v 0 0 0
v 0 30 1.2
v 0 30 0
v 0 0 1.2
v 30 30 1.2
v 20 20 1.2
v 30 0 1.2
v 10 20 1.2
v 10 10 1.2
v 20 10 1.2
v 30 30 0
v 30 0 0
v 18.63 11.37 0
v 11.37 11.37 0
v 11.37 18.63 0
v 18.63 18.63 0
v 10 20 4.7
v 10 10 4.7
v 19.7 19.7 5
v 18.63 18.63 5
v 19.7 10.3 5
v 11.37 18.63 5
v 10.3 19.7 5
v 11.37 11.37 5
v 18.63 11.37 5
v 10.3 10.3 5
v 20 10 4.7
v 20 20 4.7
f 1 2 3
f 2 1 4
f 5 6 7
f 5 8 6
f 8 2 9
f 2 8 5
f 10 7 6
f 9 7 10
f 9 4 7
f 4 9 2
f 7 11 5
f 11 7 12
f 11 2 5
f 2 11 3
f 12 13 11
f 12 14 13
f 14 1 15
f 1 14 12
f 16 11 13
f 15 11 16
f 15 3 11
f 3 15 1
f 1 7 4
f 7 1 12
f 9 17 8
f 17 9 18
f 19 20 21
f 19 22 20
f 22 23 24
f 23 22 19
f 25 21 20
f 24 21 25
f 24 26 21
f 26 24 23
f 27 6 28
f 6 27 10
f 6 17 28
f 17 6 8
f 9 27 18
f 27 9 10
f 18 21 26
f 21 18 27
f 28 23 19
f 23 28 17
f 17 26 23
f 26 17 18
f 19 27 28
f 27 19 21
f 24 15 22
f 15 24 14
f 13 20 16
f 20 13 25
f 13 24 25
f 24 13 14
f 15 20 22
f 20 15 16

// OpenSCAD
// file: ../configuration.scad
/*
	Konfiguracni soubor 3D tiskarny RebeliX X2
	
	Sledujte nas na:		  
			www.RepRap4U.cz
			www.facebook.com/RebeliX.cz
			https://twitter.com/reprap4u
			https://plus.google.com/+Reprap4uCz-3Dtiskarna-RebeliX
*/

/*================ Slic3r nastaveni ==========================*/

// Vyska vrstvy pro tisknuti dilu [mm]
layer_height = 0.3;

// Sirka vytlacovaneho materialu [mm]
extrusion_width = 0.66; //Slic3r->Print Settings->Advanced->Default extrusion width

/*==================== M6 sroub ==============================*/

// Rezerva prumeru hlavy sroubu [mm]
space = 1;

// Prumer hlavy M6 sroubu (pricte se rezerva) [mm]
M6_head_diameter = 10.6+space;
//M6_head_diameter = 12+space;

// Vyska hlavy M6 sroubu (dulezite pro zapusteni hlavy sroubu do plastu) [mm]
M6_head_height = 3.6;
//M6_head_height = 4.5;

// Delka sroubu M6 [mm]
// M6x12
M6_lenght = 12;

/*=================== Nastaveni dilu =========================*/

// Posun Z zakladny
z_base_offset = 11;

// Tloustka rohovych spojek
// 5 mm => sroub M6x14 s podlozkou
// 3 mm => sroub M6x12 s podlozkou
coupler_thickness = 5;

// Prumer 8mm tyce
rod_8mm_d = 8.2;

// Posun drzacku mezi x-motor a x-end
x_holder_position = 6.5;

/*======================== Motory ============================*/

// Delka motoru (ovlivni dily a delky tyci pro osy Z a Y)
//SX17-1003LQFE (doporuceno hlavne na osu Z)
motor_length = 29.5;
//SX17-1003 (doporuceno hlavne na osu Z), SX17-0503LQEF
//motor_length = 34;
//SX17-1005
//motor_length = 40;
//SX17-0905 - zde je jiz problem s velkou vyskou motoru na ose Z - musi se upravit endstop-holder
//motor_length = 48;

/*================ Remeny a remenicky ========================*/

// GT2 
belt_tooth_distance = 2;
belt_tooth_ratio = 0.5;

// T2.5
//belt_tooth_distance = 2.5;
//belt_tooth_ratio = 0.68;
// main file
// RebeliX
//
// profile-cover-hole
// GNU GPL v3
// Martin Neruda <neruda@reprap4u.cz>
// http://www.reprap4u.cz

include <../configuration.scad>

difference(){
	union(){
		cube([30,30,4*layer_height]);
		translate([15-5,15-5,0]) cube([10,10,5]);
	}	
	// Nabeh
	translate([0,15-5,4.7]) rotate([45,0,0]) cube([40,3,3]);
	translate([0,15+5,4.7]) rotate([45,0,0]) cube([40,3,3]);
	translate([15-5,0,4.7]) rotate([45,0,90]) cube([40,3,3]);
	translate([15+5,0,4.7]) rotate([45,0,90]) cube([40,3,3]);
	// Otvor pro napajeci kabely
	translate([15,15,2]) cube([10-4*extrusion_width-0.1,10-4*extrusion_width-0.1,10], center=true);
}	
